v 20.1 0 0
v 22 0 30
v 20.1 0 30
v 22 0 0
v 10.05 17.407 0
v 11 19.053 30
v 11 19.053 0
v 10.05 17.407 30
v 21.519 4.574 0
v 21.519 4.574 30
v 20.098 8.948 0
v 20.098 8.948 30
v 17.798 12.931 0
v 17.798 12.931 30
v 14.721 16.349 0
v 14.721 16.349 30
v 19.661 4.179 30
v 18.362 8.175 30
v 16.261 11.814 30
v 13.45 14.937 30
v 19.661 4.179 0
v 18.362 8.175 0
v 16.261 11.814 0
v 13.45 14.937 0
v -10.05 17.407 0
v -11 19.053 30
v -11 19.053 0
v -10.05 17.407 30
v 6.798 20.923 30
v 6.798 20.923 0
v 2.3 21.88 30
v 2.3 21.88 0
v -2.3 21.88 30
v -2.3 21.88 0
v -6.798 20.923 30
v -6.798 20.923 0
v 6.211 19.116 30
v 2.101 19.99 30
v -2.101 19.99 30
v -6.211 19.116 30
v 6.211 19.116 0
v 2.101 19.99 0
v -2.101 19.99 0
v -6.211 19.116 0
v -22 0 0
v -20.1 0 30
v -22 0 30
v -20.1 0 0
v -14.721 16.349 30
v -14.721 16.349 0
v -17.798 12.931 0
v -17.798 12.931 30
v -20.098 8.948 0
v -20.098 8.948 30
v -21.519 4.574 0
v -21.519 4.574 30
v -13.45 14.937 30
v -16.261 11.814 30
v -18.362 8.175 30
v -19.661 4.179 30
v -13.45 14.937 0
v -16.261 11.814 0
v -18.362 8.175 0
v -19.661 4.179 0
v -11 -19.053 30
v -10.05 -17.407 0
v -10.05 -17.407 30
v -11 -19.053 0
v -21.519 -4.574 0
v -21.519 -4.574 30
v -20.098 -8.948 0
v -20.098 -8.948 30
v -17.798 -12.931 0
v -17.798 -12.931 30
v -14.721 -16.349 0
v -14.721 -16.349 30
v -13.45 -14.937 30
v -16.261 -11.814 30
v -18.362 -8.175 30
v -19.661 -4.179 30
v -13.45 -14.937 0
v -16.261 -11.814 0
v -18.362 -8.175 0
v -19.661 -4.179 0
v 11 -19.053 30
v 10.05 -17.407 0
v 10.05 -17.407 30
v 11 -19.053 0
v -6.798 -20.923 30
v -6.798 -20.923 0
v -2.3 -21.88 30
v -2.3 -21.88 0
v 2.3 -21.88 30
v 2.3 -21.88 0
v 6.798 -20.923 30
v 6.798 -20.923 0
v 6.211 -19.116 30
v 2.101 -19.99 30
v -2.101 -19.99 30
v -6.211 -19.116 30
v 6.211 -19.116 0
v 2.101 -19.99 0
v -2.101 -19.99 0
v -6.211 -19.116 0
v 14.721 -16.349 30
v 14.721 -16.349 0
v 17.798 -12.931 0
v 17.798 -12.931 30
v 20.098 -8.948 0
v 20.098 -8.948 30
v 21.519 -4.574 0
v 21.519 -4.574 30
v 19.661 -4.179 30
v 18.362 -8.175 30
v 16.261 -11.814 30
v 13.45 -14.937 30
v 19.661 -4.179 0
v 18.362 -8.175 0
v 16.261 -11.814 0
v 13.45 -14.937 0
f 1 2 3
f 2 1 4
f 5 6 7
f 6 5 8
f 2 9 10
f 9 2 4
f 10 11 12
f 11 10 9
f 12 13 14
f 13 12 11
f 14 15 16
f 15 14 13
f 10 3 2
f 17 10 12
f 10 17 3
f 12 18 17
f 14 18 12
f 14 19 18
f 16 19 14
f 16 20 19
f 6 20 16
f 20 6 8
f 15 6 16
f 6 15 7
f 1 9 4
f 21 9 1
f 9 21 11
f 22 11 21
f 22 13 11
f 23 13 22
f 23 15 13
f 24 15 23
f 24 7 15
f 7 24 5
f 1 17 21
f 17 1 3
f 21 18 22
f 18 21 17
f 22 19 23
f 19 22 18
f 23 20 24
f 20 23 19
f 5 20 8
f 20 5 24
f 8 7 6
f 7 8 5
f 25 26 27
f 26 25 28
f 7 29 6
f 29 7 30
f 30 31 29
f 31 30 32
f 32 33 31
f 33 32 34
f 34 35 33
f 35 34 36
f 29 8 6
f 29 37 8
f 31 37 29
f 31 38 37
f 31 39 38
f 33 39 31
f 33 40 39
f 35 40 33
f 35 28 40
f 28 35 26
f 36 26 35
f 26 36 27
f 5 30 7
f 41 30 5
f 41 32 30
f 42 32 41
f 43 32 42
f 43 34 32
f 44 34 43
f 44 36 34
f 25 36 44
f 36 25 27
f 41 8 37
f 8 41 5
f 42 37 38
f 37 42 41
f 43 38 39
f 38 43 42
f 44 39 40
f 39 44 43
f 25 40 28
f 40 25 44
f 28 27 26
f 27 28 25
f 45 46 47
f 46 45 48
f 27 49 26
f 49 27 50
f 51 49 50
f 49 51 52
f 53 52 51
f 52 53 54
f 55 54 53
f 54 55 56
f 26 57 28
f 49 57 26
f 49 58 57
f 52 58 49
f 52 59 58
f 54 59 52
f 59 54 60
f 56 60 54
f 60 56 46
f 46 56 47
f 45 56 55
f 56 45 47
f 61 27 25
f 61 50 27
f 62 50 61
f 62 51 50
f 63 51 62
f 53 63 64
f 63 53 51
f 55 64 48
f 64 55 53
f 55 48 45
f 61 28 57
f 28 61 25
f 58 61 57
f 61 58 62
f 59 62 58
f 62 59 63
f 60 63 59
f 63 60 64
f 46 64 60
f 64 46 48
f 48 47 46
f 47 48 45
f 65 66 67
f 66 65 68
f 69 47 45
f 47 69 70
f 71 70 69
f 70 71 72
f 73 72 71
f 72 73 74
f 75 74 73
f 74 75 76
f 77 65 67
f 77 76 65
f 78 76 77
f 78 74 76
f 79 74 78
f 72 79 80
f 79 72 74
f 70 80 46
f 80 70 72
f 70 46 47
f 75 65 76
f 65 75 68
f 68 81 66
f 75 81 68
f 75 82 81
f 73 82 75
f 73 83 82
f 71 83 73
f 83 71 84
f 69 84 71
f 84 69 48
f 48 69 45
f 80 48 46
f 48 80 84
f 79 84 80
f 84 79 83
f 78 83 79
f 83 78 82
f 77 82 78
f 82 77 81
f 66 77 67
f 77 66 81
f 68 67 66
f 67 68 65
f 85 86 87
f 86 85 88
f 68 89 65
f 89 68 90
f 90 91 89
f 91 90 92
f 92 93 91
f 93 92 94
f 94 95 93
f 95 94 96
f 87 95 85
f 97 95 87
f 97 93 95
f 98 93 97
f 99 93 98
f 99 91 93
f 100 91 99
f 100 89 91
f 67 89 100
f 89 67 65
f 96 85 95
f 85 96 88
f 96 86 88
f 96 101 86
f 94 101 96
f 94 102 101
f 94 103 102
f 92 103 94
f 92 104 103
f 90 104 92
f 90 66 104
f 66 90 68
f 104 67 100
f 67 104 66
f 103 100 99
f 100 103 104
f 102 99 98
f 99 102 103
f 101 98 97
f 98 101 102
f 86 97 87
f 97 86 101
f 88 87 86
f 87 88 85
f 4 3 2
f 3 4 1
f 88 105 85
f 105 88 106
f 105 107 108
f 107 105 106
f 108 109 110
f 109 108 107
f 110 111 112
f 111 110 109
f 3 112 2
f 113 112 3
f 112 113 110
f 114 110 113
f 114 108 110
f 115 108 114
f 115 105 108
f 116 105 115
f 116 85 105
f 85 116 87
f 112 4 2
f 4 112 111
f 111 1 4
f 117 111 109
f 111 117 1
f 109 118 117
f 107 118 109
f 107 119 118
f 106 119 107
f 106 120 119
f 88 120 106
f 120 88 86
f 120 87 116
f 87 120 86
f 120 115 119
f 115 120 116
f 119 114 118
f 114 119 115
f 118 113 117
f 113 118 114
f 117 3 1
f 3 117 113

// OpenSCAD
// Module to create a single curved wedge block (60-degree sector)
module curved_wedge_block() {
    difference() {
        // Outer cylinder sector
        rotate_extrude(angle=60)
            translate([20, 0, 0])  // Radius of 20
                square([2, 30]);   // Thickness 2, height 30

        // Inner cylinder cutout to make it hollow
        rotate_extrude(angle=60)
            translate([18, 0, 0])  // Inner radius of 18
                square([2.1, 30]); // Slightly larger to ensure subtraction
    }
}

// Assemble six blocks in a circular pattern
for (i = [0:5]) {
    rotate([0, 0, i * 60])
        curved_wedge_block();
}
